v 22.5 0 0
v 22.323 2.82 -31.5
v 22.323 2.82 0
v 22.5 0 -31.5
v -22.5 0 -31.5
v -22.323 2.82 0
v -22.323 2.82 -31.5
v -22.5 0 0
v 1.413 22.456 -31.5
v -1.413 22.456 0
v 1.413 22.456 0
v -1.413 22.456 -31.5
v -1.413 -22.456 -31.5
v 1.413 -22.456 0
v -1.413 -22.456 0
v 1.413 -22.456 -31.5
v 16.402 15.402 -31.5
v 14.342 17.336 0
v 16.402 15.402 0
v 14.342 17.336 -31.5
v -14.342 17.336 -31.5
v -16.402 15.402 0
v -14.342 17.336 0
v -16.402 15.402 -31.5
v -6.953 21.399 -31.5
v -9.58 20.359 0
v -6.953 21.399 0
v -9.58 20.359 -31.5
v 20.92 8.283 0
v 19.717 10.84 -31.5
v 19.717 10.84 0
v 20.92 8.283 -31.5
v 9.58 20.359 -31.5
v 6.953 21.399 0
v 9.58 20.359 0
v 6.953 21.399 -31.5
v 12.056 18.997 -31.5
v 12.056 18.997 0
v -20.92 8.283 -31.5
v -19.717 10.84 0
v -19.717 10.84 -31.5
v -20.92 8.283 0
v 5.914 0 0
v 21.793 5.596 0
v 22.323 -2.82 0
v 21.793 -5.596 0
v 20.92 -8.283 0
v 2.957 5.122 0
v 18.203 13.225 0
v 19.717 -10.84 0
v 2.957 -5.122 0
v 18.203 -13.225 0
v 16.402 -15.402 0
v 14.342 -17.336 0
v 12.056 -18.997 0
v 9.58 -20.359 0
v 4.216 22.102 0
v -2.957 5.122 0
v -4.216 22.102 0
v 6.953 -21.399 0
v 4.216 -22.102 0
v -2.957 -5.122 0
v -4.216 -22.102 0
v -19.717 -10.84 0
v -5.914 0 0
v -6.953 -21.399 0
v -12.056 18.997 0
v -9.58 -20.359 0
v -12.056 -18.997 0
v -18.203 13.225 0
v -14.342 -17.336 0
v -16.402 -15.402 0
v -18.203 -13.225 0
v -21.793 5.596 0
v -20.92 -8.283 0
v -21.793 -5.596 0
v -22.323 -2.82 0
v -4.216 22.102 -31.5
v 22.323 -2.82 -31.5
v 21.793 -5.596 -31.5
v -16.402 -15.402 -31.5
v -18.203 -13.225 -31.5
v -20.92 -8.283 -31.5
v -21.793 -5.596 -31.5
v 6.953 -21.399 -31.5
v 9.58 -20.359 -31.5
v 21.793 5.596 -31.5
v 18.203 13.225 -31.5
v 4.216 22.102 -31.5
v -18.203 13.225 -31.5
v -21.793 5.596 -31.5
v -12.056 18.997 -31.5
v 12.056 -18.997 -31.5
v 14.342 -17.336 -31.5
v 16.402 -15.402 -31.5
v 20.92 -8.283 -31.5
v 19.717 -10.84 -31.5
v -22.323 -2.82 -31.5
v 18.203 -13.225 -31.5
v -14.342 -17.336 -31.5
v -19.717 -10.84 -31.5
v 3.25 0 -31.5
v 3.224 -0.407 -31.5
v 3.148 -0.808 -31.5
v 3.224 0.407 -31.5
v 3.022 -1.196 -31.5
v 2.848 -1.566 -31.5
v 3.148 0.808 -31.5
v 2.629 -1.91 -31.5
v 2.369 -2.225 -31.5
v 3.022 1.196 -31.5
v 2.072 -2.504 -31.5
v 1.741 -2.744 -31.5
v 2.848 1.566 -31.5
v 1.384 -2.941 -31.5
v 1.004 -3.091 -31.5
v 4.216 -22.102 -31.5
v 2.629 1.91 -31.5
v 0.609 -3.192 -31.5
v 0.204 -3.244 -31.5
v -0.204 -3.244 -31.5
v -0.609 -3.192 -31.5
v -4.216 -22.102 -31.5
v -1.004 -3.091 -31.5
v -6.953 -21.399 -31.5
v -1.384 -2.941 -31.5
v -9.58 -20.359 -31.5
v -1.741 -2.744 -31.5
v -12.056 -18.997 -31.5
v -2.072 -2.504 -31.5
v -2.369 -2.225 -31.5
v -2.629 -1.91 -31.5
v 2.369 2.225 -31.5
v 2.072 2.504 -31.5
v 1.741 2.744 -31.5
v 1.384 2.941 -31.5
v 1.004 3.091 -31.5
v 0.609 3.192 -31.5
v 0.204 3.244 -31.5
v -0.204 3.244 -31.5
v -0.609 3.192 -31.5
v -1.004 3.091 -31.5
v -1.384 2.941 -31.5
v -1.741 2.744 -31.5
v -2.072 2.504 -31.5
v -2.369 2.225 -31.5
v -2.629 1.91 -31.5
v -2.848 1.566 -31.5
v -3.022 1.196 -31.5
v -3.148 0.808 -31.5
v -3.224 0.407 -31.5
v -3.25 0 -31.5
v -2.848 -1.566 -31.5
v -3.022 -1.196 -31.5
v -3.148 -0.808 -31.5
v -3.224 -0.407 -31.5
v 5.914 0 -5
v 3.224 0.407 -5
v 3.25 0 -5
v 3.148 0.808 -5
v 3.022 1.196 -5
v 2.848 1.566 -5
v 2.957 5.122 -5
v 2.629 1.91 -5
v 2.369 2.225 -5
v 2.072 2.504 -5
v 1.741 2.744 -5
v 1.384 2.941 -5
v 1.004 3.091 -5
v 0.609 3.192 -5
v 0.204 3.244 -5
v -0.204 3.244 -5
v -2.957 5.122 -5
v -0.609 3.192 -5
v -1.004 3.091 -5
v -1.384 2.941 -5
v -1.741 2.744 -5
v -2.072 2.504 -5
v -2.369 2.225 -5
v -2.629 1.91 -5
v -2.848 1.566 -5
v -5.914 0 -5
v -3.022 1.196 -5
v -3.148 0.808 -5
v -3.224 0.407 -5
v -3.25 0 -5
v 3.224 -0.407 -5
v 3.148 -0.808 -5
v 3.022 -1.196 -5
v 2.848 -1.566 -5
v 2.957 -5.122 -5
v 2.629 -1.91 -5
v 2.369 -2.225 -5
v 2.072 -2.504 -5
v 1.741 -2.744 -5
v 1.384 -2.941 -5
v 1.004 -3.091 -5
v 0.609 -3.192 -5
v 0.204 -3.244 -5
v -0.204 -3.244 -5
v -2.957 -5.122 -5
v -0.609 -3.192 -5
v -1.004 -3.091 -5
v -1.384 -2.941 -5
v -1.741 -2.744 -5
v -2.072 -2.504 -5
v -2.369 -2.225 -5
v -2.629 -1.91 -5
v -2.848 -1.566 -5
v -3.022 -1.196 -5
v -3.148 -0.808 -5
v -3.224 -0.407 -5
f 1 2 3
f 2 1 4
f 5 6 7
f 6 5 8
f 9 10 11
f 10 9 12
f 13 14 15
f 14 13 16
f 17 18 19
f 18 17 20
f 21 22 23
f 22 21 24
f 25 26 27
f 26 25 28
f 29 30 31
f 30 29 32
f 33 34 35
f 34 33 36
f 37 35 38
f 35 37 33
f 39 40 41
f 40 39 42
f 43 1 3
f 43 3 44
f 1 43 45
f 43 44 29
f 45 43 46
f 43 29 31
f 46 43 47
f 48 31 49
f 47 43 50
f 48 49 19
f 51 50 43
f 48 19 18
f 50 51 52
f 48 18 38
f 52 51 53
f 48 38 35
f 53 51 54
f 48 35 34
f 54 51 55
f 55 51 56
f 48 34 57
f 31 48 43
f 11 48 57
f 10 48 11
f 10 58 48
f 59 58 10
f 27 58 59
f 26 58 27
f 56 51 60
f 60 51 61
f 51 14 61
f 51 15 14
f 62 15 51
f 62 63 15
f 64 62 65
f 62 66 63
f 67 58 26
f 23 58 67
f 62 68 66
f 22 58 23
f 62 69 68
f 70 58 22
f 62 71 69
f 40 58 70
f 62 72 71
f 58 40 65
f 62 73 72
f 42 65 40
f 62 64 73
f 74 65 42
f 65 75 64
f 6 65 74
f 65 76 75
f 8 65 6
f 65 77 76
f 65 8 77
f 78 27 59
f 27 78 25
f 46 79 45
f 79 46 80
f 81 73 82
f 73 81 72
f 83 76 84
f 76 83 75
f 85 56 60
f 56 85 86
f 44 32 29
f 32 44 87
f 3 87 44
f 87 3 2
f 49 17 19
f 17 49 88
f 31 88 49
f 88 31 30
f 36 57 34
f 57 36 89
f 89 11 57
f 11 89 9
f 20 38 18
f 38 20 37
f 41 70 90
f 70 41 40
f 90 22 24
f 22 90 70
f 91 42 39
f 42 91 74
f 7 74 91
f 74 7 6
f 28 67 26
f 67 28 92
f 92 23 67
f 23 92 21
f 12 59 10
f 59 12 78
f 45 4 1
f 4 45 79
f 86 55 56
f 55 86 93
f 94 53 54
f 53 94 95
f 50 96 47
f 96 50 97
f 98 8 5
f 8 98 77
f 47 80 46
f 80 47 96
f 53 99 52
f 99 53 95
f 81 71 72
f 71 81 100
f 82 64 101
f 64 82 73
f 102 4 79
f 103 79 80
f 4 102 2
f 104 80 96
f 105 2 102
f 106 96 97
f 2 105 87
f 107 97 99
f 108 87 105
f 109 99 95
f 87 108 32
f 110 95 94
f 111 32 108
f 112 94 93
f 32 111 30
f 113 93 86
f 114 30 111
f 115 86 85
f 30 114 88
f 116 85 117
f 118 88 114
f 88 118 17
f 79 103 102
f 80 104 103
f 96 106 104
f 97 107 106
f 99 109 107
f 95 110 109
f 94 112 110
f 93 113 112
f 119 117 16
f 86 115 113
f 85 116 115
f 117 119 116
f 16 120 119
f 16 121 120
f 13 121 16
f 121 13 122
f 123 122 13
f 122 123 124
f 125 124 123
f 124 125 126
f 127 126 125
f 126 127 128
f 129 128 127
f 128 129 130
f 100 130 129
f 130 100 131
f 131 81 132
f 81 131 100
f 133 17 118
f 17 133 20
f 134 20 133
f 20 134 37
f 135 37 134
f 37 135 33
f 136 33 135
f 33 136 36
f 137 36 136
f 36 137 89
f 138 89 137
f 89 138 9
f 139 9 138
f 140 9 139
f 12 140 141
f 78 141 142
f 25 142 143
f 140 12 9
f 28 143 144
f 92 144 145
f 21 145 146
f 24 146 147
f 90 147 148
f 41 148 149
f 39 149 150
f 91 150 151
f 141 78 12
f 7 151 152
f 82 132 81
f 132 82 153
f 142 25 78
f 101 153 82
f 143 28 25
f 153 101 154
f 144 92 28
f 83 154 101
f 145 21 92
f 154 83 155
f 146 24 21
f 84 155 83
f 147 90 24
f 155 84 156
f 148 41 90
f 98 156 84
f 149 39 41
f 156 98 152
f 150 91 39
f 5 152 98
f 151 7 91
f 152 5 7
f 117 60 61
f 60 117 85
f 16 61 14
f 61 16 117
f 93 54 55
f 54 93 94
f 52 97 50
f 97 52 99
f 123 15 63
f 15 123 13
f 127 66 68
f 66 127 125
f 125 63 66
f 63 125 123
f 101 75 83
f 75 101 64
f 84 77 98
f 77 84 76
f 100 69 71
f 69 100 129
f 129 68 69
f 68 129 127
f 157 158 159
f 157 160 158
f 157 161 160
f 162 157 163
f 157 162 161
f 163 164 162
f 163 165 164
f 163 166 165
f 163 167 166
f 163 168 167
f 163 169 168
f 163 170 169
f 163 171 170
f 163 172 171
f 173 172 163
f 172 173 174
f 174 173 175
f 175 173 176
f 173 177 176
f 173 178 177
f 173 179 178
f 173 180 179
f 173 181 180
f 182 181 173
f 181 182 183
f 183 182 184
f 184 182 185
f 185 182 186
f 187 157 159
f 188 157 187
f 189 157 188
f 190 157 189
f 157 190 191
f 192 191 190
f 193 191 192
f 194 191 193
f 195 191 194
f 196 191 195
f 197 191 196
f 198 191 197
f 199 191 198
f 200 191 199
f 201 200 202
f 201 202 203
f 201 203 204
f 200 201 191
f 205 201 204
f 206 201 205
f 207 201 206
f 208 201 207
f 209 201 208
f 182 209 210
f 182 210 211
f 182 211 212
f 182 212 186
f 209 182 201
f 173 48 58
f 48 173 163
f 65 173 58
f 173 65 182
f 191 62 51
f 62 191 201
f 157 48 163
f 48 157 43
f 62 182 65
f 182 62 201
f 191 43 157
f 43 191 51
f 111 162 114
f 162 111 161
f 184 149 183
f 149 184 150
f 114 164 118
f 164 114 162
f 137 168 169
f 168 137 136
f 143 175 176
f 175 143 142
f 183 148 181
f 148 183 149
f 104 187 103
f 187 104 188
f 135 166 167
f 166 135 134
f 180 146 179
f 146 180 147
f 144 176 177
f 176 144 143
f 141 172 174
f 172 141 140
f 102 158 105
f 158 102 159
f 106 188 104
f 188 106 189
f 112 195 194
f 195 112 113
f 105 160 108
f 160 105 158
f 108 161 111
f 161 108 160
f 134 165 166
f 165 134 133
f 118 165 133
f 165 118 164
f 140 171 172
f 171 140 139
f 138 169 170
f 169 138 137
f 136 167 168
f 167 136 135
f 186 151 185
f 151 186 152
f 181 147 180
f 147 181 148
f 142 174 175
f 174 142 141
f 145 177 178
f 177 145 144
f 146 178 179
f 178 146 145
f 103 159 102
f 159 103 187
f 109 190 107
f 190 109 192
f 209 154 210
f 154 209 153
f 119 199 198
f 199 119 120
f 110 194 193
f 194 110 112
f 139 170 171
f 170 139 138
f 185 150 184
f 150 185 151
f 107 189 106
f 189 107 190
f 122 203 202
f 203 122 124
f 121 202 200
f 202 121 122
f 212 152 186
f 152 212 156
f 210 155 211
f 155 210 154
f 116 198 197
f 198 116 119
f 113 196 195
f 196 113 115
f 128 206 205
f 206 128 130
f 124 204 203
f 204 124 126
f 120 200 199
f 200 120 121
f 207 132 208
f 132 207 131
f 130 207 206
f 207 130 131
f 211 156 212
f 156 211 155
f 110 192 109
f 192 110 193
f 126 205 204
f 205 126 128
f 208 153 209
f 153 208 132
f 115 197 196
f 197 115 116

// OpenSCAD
$fn = 50;

difference() {
	union() {
		translate(v = [0, 0, -31.5]) {
			cylinder(h = 31.5, r = 22.5);
		}
		#translate(v = [0, 0, -33.0]) {
			cylinder(h = 33, r = 2.875);
		}
	}
	union() {
		translate(v = [0, 0, 0]) {
			rotate(a = [0, 0, 0]) {
				difference() {
					union() {
						translate(v = [0, 0, -5]) {
							linear_extrude(height = 5) {
								polygon(points = [[5.914249999999999, 0.0], [2.957125, 5.1218907443321156], [-2.9571249999999982, 5.1218907443321156], [-5.914249999999999, 7.242867331857232e-16], [-2.9571250000000022, -5.121890744332115], [2.9571249999999956, -5.121890744332118]]);
							}
						}
					}
					union();
				}
			}
		}
		#translate(v = [0, 0, -100.0]) {
			cylinder(h = 200, r = 3.25);
		}
	}
}
